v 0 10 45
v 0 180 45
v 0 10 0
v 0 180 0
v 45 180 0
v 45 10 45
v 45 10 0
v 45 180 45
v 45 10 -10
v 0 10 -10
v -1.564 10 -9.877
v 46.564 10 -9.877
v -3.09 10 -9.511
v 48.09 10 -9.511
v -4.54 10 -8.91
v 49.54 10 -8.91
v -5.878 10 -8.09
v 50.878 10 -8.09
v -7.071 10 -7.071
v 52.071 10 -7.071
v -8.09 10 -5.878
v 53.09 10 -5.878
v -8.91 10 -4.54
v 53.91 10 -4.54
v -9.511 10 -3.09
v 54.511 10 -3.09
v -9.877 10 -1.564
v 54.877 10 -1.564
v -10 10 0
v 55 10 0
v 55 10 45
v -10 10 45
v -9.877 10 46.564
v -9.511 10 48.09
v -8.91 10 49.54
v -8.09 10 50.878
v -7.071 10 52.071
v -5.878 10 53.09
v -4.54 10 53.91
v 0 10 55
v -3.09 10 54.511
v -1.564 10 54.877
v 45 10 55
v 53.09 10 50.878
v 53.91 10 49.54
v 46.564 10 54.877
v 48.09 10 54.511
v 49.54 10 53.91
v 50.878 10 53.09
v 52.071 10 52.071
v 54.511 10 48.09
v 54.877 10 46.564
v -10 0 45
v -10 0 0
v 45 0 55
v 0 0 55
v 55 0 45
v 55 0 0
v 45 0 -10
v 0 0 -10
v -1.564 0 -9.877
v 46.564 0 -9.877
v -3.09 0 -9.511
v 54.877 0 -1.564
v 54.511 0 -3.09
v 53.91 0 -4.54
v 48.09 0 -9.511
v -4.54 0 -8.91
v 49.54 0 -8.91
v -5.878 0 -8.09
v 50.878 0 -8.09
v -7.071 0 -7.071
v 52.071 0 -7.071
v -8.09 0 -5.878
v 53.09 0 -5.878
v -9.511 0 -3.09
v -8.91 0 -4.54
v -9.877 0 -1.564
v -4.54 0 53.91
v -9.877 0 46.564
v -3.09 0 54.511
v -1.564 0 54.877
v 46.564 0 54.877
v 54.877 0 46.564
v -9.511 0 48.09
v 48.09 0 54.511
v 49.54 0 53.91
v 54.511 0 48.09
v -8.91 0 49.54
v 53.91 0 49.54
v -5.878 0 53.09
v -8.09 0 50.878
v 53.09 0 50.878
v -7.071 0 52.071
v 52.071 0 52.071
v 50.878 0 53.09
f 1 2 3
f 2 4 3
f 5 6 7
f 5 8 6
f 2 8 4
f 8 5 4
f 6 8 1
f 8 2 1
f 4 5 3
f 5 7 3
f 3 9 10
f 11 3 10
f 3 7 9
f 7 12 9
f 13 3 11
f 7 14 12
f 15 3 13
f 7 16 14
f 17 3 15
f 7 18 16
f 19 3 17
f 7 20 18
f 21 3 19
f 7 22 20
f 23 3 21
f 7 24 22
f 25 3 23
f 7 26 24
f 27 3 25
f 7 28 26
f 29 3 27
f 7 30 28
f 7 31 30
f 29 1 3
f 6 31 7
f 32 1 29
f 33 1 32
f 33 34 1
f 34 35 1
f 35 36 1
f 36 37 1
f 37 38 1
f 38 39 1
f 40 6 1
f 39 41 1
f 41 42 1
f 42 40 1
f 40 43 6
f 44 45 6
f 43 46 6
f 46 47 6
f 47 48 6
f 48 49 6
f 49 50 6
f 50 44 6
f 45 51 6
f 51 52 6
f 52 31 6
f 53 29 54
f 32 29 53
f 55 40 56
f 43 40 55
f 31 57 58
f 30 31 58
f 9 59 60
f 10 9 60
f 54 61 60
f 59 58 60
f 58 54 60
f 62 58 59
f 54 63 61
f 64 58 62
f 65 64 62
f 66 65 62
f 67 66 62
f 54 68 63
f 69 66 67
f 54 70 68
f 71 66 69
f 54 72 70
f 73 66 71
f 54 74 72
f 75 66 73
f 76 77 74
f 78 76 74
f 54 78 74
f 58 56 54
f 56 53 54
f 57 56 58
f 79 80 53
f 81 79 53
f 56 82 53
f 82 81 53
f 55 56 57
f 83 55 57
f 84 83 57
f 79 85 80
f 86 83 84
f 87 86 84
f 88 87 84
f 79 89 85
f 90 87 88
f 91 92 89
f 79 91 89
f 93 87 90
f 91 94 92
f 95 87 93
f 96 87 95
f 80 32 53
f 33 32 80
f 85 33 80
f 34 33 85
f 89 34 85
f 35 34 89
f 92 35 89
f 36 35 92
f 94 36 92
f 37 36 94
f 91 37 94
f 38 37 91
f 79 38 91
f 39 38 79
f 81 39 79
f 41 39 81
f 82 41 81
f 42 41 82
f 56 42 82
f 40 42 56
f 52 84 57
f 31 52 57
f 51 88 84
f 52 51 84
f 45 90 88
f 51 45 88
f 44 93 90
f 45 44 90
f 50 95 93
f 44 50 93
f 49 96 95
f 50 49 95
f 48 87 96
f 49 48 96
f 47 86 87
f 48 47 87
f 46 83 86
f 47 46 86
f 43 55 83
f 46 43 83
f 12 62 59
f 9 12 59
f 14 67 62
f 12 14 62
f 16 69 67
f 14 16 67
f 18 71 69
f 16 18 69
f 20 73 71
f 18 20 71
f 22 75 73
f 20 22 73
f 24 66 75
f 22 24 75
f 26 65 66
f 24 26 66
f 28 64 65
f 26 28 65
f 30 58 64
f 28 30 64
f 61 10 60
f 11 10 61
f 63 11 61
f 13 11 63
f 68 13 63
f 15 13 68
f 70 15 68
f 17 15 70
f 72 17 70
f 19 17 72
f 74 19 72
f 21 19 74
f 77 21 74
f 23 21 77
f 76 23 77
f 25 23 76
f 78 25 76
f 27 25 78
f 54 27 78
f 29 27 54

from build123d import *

# Parameters (mm, degrees)
SKETCH1_W           = 45
SKETCH1_H           = 180
BOSS_EXTRUDE1_DEPTH = 45
SKETCH2_W           = 65
SKETCH2_H           = 65
BOSS_EXTRUDE2_DEPTH = 10
FILLET1_R           = 10


with BuildPart() as part:
    # Sketch1 → Boss-Extrude1 (new body)
    with BuildSketch(Plane.XY):
        with Locations((22.5, 90)):
            Rectangle(SKETCH1_W, SKETCH1_H)
    extrude(amount=BOSS_EXTRUDE1_DEPTH)

    # Sketch2 → Boss-Extrude2 (add)
    with BuildSketch(Plane.XZ):
        with Locations((22.5, 22.5)):
            Rectangle(SKETCH2_W, SKETCH2_H)
    extrude(amount=-BOSS_EXTRUDE2_DEPTH)

    # Fillet1
    fillet1_edges = [part.edges().sort_by_distance(p)[0] for p in [
        (-10, 5, -10),
        (-10, 5, 55),
        (55, 5, 55),
        (55, 5, -10),
    ]]
    fillet(fillet1_edges, radius=FILLET1_R)


solid = part.part
